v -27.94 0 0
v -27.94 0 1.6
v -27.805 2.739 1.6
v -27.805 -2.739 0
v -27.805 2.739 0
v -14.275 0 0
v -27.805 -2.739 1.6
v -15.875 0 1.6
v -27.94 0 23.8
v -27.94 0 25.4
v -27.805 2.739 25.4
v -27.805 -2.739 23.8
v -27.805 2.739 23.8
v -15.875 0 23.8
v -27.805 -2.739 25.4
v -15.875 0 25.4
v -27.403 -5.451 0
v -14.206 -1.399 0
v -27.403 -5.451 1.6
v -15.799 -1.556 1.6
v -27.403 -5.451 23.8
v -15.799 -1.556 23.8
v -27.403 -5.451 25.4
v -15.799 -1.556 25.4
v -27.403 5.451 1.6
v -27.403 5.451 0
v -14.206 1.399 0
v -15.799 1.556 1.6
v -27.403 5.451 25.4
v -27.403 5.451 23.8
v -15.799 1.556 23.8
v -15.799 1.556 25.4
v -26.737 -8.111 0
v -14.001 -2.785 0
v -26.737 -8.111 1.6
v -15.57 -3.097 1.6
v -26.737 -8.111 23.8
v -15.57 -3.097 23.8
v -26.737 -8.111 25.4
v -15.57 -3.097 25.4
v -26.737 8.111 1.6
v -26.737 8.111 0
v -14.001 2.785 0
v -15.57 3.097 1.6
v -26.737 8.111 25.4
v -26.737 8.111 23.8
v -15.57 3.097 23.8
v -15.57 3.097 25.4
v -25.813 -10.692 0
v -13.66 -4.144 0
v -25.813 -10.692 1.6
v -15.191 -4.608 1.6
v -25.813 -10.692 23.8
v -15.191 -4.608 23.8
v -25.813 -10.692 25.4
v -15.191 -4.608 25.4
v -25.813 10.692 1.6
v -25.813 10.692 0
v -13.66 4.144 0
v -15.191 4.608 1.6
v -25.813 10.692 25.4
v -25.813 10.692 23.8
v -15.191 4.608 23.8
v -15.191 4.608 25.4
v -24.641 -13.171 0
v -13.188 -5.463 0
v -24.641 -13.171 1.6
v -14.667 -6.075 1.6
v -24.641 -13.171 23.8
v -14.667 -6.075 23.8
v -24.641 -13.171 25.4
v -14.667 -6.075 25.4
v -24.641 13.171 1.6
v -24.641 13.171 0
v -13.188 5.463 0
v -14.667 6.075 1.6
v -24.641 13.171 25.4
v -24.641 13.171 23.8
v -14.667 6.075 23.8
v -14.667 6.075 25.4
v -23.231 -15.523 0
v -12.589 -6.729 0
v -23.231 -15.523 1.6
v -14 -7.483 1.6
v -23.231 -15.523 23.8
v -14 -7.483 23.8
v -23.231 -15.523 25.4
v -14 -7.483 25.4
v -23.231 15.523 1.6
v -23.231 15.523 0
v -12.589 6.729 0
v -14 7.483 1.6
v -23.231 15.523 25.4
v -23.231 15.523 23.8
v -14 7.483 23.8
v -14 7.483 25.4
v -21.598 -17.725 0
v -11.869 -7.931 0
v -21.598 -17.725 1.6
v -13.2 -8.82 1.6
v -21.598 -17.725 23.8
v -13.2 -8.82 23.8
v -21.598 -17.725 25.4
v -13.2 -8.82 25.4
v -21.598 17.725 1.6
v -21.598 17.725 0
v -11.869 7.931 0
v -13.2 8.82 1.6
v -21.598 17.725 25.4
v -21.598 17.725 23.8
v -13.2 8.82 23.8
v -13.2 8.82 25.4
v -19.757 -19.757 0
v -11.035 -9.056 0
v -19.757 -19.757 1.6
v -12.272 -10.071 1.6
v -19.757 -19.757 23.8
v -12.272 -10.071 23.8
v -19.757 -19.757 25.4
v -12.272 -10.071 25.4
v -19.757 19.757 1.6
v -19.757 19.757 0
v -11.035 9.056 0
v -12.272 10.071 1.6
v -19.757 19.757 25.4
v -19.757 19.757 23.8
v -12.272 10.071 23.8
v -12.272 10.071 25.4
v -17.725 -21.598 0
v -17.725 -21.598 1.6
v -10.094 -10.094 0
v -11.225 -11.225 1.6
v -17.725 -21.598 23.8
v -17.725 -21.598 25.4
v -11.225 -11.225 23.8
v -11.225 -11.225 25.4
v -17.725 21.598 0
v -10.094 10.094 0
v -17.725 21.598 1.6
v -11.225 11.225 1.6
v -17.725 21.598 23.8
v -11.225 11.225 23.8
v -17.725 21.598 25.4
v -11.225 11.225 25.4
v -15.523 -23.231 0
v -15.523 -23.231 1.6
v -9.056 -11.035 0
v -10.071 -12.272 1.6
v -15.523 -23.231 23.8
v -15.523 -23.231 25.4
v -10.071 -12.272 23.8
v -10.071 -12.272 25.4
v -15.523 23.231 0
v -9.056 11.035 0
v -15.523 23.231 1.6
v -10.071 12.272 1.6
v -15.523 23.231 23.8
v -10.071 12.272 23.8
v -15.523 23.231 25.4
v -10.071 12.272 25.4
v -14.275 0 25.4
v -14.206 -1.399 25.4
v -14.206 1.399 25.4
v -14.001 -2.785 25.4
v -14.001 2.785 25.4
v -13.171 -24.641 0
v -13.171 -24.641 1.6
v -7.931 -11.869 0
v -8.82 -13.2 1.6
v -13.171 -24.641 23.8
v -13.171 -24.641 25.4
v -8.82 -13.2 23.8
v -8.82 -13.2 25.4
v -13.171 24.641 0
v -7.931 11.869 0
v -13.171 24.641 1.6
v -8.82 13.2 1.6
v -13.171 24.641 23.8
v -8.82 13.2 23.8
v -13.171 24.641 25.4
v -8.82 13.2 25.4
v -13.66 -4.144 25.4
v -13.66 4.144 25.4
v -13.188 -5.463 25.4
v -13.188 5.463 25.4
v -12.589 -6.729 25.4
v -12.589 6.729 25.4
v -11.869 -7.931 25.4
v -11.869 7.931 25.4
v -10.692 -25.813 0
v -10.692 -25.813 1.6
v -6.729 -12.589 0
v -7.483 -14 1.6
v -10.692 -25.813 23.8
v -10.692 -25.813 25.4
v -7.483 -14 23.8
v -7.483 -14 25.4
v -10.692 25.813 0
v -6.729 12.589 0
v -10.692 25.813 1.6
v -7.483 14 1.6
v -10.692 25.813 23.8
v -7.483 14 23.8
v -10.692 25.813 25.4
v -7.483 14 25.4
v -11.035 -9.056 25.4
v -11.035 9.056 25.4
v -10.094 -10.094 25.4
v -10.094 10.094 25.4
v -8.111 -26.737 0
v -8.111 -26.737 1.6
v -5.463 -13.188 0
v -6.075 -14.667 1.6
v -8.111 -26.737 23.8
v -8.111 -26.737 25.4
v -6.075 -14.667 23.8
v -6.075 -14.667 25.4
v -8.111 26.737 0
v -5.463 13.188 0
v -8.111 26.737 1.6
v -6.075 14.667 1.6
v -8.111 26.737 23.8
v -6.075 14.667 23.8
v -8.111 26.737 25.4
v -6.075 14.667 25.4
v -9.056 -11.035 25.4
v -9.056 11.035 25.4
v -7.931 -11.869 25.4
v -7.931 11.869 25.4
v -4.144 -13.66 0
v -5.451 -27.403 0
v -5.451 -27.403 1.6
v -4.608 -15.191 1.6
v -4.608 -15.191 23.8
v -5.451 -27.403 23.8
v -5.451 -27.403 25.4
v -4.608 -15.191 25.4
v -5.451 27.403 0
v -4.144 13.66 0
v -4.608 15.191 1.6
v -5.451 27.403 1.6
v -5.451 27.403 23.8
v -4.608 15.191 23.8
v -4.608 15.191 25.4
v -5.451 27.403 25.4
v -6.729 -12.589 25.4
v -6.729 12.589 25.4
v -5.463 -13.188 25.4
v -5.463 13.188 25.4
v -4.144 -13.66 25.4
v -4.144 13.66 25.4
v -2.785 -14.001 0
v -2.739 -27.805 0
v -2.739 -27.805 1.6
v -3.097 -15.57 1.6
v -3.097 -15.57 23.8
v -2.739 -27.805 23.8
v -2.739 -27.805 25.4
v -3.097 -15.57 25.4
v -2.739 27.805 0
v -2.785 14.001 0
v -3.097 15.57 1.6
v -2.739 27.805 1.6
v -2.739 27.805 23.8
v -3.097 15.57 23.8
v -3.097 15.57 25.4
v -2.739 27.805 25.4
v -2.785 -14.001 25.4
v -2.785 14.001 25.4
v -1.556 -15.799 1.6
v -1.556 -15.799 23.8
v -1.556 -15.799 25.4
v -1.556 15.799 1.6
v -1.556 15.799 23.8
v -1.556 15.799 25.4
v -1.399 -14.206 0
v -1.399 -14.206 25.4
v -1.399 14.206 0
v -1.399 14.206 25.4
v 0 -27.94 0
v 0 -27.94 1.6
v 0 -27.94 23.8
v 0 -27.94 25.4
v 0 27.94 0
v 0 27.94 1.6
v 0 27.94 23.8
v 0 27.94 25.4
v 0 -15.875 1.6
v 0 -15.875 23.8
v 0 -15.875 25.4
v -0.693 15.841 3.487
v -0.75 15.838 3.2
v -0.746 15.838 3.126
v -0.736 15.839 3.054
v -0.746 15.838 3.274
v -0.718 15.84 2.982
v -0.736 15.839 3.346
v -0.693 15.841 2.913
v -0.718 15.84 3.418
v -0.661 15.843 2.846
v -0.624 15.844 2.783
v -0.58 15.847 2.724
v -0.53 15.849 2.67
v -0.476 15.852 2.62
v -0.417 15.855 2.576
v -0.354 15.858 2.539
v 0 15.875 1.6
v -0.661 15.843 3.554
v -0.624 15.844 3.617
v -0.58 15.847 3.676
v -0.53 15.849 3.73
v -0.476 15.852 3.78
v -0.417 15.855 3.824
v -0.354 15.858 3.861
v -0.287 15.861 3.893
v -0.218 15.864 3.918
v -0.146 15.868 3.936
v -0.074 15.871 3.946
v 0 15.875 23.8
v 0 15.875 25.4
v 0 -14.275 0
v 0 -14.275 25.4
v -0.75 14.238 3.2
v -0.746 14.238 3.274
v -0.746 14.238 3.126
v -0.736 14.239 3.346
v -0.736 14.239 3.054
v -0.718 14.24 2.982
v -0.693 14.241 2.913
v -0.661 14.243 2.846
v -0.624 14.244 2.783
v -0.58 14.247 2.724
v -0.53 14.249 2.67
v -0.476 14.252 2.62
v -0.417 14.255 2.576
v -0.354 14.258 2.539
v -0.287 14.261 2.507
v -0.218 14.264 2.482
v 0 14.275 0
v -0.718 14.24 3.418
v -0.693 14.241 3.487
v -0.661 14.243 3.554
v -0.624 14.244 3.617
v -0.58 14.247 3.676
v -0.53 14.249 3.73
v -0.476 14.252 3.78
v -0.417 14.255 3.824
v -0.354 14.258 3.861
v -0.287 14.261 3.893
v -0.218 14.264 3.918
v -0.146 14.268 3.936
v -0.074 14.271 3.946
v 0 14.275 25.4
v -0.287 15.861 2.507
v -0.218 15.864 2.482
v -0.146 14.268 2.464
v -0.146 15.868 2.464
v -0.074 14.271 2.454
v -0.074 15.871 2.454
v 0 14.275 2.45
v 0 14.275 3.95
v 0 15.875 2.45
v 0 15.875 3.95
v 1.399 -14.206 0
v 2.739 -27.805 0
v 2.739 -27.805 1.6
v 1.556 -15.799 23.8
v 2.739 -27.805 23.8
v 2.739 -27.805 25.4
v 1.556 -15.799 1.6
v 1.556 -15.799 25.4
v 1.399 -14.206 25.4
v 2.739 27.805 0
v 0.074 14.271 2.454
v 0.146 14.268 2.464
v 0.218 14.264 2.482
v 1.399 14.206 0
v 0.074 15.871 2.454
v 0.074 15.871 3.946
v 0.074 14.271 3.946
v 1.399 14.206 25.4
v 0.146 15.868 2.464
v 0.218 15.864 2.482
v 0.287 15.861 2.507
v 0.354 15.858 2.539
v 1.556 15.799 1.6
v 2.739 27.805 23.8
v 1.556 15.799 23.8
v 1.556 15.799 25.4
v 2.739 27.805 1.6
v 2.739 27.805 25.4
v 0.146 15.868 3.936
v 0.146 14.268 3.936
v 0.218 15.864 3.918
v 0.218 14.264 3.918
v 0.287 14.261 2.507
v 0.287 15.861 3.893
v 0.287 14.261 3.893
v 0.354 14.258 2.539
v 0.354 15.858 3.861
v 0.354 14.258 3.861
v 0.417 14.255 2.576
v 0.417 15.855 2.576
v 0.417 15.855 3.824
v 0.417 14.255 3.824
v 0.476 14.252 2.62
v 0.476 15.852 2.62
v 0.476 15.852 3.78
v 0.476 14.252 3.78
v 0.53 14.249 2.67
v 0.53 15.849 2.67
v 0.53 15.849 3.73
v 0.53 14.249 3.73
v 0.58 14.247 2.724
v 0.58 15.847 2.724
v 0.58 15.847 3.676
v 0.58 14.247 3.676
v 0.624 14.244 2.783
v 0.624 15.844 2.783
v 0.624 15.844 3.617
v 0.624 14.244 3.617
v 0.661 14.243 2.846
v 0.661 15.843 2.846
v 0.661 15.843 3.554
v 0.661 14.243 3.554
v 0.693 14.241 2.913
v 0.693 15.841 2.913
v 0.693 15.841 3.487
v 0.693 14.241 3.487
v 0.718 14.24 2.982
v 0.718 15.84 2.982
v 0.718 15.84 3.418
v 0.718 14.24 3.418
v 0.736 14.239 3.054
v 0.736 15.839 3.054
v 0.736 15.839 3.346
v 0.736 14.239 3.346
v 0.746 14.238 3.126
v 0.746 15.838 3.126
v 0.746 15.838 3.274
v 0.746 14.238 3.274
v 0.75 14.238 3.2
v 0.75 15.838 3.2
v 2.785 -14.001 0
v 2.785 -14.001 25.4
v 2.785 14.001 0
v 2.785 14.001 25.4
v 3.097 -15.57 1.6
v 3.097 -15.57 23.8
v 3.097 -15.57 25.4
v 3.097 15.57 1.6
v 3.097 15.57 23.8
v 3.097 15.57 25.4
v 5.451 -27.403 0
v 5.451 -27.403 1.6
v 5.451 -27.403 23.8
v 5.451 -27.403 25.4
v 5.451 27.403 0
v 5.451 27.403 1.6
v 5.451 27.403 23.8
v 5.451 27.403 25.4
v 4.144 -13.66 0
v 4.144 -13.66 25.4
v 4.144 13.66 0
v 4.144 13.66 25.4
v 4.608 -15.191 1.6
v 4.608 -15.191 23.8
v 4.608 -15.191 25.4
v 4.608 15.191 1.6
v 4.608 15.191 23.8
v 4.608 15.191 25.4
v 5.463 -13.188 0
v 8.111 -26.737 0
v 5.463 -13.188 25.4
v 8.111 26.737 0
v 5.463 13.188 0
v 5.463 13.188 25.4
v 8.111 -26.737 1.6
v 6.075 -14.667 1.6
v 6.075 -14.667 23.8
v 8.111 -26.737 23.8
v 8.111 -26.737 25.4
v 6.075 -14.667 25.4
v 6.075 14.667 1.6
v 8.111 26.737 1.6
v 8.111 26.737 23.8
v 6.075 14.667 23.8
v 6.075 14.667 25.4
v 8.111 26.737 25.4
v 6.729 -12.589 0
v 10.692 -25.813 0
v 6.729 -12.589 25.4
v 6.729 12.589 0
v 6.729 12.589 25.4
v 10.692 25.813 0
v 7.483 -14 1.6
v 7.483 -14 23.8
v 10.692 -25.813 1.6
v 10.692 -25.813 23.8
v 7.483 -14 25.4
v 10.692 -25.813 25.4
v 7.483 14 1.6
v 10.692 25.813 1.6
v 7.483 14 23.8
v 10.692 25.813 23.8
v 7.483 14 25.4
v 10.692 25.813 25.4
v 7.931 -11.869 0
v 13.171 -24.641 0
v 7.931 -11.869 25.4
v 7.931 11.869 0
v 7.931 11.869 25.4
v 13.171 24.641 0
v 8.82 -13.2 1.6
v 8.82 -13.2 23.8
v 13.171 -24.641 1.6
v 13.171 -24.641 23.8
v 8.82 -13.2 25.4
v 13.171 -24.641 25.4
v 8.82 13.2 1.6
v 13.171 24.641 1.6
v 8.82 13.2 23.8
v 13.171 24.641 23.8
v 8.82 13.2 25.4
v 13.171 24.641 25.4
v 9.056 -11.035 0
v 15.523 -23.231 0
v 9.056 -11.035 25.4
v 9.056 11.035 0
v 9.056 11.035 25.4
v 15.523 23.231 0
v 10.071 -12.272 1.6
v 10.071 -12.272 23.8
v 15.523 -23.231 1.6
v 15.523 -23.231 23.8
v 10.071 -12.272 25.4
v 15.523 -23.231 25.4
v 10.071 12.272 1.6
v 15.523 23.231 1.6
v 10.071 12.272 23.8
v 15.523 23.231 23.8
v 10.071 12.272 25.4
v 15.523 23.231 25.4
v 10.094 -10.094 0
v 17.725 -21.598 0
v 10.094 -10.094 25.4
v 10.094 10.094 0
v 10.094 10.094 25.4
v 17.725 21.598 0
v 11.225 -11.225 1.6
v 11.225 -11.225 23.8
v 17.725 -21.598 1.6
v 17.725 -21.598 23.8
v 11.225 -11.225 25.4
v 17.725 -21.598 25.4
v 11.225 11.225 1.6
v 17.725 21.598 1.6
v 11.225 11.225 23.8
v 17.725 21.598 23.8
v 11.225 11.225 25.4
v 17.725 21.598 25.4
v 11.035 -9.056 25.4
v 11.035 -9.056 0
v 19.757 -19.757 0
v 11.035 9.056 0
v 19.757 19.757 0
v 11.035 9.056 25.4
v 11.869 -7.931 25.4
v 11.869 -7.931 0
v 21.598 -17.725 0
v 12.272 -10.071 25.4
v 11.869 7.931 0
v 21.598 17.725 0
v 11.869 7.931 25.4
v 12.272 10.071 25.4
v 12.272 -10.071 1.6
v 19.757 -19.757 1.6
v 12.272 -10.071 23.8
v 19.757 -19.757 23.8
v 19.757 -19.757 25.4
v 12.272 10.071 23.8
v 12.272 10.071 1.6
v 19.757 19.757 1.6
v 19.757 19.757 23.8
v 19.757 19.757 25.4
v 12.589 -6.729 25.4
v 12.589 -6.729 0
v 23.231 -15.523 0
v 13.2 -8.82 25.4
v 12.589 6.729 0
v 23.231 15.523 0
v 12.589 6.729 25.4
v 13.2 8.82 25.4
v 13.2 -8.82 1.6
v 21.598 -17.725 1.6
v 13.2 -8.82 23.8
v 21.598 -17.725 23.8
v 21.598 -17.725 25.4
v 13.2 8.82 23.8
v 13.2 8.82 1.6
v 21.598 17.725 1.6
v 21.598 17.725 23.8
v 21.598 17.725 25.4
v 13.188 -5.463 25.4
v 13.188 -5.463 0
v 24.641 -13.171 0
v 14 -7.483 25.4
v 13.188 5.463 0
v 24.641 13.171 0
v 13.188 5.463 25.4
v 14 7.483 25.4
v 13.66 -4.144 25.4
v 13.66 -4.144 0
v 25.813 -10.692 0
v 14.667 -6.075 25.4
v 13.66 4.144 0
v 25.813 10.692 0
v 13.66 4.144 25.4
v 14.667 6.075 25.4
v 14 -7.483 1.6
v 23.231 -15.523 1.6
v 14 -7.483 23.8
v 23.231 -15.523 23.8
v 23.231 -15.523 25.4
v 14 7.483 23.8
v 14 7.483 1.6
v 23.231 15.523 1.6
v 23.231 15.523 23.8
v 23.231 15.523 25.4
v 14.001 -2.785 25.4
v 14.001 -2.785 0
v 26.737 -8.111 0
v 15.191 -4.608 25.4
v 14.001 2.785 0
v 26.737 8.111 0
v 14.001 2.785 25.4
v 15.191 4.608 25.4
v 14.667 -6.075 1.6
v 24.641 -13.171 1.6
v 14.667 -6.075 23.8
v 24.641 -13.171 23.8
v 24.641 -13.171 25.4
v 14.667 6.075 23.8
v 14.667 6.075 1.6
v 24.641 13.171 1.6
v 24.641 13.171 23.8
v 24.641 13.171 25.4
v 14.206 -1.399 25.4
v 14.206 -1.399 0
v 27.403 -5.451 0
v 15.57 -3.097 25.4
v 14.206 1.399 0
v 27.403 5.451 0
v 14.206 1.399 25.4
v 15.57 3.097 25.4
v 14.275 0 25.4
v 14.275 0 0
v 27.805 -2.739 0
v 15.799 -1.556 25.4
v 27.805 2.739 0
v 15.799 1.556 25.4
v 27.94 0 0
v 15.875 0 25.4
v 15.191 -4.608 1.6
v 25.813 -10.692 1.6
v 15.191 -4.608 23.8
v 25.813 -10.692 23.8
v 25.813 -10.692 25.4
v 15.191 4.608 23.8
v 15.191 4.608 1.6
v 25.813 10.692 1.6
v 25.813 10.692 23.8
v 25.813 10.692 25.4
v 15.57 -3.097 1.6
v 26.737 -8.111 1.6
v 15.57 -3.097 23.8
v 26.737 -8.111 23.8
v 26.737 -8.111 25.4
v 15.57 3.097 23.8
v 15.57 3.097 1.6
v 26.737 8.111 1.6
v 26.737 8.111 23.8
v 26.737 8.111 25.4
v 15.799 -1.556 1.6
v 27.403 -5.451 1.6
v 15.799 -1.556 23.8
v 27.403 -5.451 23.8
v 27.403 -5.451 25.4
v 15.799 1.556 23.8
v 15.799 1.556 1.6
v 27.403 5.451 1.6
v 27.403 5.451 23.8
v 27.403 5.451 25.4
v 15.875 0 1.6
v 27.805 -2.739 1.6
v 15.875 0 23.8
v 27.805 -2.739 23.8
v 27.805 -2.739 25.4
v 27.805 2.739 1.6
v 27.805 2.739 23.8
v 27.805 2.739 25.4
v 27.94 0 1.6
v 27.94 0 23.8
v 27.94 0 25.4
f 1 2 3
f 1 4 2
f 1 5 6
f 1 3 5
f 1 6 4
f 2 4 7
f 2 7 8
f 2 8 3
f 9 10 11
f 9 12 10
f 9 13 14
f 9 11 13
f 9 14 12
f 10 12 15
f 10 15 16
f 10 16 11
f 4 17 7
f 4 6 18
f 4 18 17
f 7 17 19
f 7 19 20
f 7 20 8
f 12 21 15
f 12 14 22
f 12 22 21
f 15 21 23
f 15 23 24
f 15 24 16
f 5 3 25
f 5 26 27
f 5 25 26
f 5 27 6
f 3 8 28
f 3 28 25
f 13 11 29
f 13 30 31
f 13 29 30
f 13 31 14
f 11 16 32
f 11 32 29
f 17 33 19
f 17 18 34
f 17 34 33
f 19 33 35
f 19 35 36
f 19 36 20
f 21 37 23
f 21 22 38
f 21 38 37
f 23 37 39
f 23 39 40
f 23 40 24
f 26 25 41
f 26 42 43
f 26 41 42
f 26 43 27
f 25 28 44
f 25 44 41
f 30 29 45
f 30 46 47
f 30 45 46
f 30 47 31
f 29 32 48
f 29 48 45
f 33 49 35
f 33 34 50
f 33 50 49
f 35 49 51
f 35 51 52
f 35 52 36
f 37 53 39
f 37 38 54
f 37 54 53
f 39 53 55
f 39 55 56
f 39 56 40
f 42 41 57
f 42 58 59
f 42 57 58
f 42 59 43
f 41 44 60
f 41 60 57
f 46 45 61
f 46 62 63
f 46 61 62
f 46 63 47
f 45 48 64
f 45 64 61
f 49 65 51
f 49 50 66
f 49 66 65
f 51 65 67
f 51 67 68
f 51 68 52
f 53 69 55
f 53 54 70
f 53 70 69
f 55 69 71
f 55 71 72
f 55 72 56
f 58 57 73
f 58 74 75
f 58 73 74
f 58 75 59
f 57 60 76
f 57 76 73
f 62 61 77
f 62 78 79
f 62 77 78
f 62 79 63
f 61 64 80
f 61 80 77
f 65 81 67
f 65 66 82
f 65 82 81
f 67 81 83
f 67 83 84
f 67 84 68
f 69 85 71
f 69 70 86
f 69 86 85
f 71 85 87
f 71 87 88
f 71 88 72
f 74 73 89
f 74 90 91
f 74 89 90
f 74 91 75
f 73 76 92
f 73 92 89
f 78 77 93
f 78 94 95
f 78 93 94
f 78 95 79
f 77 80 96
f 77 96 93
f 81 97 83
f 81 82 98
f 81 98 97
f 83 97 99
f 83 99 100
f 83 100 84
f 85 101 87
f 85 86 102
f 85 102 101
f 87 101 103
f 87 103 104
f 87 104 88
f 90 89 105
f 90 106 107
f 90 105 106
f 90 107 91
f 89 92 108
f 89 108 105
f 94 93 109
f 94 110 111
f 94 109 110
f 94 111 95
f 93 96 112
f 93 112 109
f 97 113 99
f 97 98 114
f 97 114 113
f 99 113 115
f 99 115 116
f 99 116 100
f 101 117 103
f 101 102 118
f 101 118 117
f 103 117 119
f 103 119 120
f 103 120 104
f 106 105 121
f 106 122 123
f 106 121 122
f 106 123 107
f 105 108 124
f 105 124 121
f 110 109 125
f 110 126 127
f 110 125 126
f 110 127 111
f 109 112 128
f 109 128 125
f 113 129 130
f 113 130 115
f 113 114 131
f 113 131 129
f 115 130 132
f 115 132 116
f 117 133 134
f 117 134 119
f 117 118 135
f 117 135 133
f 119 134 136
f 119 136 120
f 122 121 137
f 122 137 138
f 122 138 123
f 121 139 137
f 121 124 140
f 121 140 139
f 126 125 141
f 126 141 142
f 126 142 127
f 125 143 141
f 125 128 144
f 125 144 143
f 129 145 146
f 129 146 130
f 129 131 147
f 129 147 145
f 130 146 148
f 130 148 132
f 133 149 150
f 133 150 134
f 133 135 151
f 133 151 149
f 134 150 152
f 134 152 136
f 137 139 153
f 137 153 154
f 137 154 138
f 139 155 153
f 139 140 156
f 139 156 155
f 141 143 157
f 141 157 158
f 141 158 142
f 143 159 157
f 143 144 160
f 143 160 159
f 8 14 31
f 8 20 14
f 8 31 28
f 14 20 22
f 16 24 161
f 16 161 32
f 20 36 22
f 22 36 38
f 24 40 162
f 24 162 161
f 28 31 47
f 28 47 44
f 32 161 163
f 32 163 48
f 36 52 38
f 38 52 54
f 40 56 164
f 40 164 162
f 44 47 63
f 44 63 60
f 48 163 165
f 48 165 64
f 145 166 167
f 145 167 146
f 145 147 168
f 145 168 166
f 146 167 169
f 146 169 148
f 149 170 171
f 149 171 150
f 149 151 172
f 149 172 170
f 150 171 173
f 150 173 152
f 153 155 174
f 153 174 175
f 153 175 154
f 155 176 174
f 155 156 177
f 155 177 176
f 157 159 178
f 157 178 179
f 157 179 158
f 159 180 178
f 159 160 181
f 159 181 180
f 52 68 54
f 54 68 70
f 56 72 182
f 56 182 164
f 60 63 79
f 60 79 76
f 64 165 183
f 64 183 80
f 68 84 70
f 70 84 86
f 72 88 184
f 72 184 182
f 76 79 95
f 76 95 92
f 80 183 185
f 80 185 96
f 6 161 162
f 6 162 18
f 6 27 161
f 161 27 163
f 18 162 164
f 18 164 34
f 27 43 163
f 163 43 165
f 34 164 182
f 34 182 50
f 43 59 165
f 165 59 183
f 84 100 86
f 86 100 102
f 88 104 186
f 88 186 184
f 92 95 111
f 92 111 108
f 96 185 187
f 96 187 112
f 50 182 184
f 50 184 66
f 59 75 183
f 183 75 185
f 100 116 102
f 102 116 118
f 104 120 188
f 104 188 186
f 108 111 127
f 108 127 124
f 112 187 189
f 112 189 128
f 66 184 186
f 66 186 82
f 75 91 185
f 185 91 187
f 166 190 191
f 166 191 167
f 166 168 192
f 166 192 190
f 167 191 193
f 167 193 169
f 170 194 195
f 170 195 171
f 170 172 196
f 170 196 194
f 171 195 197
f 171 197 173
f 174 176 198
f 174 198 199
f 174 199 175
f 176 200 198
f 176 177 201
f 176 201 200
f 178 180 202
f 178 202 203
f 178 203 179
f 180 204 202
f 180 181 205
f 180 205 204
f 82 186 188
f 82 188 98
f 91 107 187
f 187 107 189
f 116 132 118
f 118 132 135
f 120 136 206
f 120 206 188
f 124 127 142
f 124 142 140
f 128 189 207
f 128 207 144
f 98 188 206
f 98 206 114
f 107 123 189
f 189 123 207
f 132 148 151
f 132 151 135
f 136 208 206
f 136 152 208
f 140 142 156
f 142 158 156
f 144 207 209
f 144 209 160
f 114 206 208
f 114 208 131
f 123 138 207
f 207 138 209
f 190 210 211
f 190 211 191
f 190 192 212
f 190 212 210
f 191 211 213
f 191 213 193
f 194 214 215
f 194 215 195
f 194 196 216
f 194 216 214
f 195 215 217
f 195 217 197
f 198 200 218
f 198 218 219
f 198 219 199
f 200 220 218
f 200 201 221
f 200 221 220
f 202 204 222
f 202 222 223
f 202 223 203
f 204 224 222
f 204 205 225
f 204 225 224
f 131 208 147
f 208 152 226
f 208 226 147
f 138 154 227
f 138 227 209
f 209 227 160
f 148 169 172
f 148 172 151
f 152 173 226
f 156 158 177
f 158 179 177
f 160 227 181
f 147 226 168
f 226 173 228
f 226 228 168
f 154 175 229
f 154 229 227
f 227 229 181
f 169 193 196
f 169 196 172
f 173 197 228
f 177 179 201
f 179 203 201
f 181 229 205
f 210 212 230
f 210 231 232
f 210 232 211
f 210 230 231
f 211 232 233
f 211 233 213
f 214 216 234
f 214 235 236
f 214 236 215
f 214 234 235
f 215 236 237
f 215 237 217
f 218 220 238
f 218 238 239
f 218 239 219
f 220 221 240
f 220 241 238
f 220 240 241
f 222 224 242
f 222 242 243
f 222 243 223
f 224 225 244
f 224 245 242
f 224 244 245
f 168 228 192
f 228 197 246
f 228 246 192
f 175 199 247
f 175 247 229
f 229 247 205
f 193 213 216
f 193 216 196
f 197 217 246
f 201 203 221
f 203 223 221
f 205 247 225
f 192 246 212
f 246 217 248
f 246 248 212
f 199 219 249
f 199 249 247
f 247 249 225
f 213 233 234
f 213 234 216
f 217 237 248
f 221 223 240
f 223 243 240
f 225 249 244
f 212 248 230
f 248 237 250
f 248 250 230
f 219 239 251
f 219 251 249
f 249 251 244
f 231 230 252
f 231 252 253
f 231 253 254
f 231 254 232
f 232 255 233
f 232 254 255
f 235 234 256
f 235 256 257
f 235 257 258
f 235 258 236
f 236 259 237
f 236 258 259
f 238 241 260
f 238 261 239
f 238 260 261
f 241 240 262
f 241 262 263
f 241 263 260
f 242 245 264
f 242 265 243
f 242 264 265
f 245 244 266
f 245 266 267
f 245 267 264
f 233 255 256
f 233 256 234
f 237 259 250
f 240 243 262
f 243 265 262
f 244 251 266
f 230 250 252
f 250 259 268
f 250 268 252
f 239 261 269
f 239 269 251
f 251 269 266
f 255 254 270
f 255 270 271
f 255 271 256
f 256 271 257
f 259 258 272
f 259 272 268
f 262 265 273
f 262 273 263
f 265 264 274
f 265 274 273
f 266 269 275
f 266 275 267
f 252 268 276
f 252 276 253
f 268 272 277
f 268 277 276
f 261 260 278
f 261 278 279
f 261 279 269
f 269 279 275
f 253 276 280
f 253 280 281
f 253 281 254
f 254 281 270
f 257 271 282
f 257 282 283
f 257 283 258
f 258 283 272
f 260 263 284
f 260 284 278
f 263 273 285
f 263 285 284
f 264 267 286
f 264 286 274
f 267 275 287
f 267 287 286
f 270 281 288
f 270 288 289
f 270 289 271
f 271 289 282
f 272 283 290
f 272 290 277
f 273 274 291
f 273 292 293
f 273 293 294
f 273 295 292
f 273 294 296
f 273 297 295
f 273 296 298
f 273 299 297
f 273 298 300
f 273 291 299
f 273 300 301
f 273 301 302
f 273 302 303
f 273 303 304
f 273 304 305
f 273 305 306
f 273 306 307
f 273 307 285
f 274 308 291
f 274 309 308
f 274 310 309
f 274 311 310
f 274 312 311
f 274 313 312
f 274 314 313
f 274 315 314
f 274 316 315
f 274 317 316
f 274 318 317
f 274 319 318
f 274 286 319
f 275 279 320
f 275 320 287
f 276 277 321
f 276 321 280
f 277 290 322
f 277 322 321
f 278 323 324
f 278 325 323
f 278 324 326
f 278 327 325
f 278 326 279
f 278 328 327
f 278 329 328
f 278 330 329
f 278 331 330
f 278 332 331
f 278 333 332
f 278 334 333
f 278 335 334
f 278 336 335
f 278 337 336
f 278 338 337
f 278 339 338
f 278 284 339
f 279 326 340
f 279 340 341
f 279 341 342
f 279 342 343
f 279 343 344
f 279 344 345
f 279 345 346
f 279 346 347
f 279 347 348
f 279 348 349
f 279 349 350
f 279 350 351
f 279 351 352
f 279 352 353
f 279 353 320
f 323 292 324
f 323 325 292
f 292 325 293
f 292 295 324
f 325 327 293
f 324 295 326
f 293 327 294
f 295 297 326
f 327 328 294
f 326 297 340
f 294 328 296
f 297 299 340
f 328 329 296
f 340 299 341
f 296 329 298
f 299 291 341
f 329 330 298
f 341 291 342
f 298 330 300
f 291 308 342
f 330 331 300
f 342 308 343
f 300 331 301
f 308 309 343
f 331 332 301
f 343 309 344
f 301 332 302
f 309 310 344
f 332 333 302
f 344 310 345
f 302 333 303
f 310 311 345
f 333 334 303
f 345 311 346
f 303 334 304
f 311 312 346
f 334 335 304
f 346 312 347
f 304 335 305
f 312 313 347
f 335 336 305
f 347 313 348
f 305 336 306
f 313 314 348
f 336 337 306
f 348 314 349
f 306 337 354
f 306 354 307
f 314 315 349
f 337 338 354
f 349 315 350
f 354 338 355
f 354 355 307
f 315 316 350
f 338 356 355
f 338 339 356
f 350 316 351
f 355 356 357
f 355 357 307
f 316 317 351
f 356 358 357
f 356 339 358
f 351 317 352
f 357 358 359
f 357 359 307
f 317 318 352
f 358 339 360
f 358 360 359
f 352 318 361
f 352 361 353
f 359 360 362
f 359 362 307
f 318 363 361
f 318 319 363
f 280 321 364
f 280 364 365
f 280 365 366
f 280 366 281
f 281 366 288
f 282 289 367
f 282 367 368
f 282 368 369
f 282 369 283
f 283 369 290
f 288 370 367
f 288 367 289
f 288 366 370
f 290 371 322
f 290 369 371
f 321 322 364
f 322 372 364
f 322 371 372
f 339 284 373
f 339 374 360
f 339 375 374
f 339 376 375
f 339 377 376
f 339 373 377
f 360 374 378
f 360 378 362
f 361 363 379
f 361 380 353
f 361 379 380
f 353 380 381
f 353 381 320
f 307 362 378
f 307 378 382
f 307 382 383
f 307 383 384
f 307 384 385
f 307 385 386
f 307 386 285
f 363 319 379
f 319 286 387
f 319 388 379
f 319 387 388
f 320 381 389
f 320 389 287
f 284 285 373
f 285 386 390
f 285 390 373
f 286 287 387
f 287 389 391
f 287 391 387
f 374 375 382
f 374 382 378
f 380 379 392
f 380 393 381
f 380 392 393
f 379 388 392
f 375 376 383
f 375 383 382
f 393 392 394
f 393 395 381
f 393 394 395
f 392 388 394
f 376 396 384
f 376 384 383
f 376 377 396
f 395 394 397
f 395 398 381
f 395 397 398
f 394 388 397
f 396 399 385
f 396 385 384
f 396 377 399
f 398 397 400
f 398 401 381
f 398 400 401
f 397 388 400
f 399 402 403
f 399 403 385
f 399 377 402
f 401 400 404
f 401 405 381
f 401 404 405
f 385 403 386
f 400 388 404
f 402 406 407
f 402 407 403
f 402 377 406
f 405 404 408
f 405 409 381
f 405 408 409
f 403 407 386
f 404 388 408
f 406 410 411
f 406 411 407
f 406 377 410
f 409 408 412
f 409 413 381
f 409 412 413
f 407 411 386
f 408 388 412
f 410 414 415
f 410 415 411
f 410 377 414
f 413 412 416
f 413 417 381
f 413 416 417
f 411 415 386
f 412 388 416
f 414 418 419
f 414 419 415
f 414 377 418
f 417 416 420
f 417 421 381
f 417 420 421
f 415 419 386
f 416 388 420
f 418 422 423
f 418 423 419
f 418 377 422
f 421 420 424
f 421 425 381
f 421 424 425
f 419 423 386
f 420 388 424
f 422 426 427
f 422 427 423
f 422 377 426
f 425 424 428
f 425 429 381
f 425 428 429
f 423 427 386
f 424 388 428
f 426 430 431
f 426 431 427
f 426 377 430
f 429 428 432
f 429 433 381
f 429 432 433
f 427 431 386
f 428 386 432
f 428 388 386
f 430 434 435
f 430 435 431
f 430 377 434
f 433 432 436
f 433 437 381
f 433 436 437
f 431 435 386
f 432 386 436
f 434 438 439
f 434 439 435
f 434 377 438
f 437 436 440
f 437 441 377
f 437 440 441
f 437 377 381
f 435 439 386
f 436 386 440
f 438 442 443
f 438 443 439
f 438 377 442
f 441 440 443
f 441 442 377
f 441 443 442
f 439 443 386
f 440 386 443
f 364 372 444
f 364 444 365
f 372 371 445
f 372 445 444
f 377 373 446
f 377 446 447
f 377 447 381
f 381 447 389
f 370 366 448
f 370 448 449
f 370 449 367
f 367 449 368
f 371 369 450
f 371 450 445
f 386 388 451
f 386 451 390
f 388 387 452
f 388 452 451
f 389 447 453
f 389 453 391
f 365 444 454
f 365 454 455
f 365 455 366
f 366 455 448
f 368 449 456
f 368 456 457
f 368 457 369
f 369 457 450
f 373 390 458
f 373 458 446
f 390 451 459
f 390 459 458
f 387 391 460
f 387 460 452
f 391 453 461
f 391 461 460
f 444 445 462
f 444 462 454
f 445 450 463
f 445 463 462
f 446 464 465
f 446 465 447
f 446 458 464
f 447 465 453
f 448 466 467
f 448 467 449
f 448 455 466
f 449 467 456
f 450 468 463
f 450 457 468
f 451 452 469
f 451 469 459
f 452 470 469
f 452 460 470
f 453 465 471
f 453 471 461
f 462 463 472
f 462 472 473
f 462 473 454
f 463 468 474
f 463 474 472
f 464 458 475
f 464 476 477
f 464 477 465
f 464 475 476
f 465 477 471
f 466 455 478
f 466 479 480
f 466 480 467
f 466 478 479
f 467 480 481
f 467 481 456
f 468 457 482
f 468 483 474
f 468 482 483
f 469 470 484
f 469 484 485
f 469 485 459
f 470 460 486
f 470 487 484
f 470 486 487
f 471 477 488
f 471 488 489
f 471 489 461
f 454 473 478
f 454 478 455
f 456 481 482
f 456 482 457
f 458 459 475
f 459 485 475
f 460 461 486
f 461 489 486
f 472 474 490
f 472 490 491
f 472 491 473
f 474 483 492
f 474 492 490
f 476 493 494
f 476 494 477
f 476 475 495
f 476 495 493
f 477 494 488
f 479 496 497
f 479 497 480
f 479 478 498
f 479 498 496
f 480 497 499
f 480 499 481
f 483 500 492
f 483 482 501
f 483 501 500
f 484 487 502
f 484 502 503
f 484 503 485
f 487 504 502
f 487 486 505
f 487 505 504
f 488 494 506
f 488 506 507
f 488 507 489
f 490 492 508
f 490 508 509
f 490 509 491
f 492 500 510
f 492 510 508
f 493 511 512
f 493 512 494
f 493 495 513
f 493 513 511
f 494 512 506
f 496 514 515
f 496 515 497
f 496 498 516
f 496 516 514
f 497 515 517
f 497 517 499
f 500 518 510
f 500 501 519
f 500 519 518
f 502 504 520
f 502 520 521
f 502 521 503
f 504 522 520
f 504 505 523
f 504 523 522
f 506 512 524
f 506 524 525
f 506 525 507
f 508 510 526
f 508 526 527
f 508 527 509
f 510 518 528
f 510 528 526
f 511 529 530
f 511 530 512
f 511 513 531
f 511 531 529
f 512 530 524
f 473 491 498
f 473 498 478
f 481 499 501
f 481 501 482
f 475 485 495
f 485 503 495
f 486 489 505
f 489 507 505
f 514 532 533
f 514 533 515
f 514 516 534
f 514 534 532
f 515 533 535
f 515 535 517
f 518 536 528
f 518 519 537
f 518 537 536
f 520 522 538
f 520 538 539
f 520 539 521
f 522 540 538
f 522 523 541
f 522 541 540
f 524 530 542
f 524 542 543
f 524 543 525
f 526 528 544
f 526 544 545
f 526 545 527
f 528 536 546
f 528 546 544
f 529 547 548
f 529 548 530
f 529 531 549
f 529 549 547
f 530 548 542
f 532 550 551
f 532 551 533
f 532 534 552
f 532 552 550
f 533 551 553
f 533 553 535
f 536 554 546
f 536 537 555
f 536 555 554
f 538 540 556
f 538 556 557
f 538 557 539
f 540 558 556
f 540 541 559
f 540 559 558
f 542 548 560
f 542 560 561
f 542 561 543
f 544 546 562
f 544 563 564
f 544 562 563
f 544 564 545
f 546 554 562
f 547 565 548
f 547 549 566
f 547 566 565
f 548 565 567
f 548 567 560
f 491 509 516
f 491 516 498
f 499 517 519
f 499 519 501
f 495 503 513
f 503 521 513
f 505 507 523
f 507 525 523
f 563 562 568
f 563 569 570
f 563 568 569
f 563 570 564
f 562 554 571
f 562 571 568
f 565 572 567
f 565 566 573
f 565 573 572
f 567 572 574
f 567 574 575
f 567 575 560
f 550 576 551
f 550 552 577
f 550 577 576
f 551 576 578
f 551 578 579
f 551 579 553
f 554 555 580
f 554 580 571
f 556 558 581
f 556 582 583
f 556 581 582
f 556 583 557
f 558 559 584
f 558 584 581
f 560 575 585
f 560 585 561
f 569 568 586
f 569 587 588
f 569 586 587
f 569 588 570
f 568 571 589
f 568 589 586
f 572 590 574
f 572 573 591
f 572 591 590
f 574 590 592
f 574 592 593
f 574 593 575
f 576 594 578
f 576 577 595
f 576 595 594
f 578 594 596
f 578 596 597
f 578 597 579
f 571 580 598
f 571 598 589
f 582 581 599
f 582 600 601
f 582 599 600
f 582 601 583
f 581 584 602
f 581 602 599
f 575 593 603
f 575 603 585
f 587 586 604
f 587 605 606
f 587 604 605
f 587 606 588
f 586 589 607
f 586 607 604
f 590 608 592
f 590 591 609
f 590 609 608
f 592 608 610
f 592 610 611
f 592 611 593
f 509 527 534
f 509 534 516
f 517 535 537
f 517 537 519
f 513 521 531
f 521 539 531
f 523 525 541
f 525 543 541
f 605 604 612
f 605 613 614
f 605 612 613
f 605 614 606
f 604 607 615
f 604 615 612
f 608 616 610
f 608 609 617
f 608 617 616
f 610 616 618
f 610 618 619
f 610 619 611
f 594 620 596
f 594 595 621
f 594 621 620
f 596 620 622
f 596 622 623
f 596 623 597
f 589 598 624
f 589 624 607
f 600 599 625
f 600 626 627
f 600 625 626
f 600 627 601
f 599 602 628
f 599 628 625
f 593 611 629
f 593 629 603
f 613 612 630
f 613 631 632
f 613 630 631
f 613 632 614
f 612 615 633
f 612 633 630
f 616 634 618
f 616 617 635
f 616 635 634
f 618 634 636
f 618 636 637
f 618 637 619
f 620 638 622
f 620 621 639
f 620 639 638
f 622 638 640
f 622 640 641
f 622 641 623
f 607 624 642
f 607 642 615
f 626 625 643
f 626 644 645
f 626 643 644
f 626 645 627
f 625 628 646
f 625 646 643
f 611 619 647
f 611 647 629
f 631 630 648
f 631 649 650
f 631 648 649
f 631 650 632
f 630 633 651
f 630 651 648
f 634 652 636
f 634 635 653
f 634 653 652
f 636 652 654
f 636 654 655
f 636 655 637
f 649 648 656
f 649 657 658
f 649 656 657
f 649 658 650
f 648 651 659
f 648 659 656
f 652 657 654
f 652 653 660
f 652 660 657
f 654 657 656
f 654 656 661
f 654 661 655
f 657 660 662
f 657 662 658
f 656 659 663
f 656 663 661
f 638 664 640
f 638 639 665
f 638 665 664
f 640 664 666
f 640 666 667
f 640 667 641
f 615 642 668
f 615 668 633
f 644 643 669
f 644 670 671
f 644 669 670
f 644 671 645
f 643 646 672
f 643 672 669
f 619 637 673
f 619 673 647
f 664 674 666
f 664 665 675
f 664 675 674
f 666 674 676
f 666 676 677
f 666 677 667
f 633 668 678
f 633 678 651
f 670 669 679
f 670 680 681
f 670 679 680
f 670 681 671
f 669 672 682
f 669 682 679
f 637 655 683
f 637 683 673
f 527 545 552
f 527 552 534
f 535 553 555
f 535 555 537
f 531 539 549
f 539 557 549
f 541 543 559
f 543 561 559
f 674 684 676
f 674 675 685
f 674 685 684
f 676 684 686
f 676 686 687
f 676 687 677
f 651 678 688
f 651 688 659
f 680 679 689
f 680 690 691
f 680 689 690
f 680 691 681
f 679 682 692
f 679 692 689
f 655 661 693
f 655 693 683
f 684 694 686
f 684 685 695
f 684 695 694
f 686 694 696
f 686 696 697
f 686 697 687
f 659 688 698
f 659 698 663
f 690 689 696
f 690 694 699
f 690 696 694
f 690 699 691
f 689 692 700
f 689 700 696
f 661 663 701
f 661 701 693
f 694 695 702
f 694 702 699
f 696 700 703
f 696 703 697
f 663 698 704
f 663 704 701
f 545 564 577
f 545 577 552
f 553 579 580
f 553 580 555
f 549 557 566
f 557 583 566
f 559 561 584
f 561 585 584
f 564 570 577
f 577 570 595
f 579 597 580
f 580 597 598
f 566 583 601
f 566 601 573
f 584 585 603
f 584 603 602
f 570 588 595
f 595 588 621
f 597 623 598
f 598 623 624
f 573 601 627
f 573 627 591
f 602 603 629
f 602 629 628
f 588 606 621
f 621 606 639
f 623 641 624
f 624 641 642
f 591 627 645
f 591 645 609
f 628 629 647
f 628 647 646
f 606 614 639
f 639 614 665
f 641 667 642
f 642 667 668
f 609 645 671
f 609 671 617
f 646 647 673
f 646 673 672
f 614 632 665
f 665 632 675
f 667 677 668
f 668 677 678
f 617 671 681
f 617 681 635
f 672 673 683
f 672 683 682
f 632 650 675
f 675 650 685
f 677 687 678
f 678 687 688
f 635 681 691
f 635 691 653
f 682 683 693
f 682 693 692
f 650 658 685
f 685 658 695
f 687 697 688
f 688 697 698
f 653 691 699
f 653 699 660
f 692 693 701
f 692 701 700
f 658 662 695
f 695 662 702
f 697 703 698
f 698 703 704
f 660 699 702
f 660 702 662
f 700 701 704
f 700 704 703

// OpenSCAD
mm = 25.4;
e = 0.1;
$fn = 64;

outer_dia = 2.2*mm;
lip_thk = 1.6;
core_dia = 1.25*mm;
height = 1*mm;
core_thk = 1.6;

core_open = core_dia - 2*core_thk;

hole_dia = 1.5;

module core() {
  difference() {
    cylinder( d=core_dia, h=height);
    translate( [0, 0, -e]) cylinder( d=core_open, h=height+2*e);
    translate( [0, core_dia/2+1, lip_thk*2])
      rotate( [90, 0, 0])
      cylinder( h=5, d=hole_dia);
  }
}

module lip() {
  difference() {
    cylinder( d=outer_dia, h=lip_thk);
    translate( [0, 0, -e]) cylinder( d=core_open, h=lip_thk+2*e);
  }
}

core();
lip();
translate( [0, 0, height-lip_thk]) lip();
